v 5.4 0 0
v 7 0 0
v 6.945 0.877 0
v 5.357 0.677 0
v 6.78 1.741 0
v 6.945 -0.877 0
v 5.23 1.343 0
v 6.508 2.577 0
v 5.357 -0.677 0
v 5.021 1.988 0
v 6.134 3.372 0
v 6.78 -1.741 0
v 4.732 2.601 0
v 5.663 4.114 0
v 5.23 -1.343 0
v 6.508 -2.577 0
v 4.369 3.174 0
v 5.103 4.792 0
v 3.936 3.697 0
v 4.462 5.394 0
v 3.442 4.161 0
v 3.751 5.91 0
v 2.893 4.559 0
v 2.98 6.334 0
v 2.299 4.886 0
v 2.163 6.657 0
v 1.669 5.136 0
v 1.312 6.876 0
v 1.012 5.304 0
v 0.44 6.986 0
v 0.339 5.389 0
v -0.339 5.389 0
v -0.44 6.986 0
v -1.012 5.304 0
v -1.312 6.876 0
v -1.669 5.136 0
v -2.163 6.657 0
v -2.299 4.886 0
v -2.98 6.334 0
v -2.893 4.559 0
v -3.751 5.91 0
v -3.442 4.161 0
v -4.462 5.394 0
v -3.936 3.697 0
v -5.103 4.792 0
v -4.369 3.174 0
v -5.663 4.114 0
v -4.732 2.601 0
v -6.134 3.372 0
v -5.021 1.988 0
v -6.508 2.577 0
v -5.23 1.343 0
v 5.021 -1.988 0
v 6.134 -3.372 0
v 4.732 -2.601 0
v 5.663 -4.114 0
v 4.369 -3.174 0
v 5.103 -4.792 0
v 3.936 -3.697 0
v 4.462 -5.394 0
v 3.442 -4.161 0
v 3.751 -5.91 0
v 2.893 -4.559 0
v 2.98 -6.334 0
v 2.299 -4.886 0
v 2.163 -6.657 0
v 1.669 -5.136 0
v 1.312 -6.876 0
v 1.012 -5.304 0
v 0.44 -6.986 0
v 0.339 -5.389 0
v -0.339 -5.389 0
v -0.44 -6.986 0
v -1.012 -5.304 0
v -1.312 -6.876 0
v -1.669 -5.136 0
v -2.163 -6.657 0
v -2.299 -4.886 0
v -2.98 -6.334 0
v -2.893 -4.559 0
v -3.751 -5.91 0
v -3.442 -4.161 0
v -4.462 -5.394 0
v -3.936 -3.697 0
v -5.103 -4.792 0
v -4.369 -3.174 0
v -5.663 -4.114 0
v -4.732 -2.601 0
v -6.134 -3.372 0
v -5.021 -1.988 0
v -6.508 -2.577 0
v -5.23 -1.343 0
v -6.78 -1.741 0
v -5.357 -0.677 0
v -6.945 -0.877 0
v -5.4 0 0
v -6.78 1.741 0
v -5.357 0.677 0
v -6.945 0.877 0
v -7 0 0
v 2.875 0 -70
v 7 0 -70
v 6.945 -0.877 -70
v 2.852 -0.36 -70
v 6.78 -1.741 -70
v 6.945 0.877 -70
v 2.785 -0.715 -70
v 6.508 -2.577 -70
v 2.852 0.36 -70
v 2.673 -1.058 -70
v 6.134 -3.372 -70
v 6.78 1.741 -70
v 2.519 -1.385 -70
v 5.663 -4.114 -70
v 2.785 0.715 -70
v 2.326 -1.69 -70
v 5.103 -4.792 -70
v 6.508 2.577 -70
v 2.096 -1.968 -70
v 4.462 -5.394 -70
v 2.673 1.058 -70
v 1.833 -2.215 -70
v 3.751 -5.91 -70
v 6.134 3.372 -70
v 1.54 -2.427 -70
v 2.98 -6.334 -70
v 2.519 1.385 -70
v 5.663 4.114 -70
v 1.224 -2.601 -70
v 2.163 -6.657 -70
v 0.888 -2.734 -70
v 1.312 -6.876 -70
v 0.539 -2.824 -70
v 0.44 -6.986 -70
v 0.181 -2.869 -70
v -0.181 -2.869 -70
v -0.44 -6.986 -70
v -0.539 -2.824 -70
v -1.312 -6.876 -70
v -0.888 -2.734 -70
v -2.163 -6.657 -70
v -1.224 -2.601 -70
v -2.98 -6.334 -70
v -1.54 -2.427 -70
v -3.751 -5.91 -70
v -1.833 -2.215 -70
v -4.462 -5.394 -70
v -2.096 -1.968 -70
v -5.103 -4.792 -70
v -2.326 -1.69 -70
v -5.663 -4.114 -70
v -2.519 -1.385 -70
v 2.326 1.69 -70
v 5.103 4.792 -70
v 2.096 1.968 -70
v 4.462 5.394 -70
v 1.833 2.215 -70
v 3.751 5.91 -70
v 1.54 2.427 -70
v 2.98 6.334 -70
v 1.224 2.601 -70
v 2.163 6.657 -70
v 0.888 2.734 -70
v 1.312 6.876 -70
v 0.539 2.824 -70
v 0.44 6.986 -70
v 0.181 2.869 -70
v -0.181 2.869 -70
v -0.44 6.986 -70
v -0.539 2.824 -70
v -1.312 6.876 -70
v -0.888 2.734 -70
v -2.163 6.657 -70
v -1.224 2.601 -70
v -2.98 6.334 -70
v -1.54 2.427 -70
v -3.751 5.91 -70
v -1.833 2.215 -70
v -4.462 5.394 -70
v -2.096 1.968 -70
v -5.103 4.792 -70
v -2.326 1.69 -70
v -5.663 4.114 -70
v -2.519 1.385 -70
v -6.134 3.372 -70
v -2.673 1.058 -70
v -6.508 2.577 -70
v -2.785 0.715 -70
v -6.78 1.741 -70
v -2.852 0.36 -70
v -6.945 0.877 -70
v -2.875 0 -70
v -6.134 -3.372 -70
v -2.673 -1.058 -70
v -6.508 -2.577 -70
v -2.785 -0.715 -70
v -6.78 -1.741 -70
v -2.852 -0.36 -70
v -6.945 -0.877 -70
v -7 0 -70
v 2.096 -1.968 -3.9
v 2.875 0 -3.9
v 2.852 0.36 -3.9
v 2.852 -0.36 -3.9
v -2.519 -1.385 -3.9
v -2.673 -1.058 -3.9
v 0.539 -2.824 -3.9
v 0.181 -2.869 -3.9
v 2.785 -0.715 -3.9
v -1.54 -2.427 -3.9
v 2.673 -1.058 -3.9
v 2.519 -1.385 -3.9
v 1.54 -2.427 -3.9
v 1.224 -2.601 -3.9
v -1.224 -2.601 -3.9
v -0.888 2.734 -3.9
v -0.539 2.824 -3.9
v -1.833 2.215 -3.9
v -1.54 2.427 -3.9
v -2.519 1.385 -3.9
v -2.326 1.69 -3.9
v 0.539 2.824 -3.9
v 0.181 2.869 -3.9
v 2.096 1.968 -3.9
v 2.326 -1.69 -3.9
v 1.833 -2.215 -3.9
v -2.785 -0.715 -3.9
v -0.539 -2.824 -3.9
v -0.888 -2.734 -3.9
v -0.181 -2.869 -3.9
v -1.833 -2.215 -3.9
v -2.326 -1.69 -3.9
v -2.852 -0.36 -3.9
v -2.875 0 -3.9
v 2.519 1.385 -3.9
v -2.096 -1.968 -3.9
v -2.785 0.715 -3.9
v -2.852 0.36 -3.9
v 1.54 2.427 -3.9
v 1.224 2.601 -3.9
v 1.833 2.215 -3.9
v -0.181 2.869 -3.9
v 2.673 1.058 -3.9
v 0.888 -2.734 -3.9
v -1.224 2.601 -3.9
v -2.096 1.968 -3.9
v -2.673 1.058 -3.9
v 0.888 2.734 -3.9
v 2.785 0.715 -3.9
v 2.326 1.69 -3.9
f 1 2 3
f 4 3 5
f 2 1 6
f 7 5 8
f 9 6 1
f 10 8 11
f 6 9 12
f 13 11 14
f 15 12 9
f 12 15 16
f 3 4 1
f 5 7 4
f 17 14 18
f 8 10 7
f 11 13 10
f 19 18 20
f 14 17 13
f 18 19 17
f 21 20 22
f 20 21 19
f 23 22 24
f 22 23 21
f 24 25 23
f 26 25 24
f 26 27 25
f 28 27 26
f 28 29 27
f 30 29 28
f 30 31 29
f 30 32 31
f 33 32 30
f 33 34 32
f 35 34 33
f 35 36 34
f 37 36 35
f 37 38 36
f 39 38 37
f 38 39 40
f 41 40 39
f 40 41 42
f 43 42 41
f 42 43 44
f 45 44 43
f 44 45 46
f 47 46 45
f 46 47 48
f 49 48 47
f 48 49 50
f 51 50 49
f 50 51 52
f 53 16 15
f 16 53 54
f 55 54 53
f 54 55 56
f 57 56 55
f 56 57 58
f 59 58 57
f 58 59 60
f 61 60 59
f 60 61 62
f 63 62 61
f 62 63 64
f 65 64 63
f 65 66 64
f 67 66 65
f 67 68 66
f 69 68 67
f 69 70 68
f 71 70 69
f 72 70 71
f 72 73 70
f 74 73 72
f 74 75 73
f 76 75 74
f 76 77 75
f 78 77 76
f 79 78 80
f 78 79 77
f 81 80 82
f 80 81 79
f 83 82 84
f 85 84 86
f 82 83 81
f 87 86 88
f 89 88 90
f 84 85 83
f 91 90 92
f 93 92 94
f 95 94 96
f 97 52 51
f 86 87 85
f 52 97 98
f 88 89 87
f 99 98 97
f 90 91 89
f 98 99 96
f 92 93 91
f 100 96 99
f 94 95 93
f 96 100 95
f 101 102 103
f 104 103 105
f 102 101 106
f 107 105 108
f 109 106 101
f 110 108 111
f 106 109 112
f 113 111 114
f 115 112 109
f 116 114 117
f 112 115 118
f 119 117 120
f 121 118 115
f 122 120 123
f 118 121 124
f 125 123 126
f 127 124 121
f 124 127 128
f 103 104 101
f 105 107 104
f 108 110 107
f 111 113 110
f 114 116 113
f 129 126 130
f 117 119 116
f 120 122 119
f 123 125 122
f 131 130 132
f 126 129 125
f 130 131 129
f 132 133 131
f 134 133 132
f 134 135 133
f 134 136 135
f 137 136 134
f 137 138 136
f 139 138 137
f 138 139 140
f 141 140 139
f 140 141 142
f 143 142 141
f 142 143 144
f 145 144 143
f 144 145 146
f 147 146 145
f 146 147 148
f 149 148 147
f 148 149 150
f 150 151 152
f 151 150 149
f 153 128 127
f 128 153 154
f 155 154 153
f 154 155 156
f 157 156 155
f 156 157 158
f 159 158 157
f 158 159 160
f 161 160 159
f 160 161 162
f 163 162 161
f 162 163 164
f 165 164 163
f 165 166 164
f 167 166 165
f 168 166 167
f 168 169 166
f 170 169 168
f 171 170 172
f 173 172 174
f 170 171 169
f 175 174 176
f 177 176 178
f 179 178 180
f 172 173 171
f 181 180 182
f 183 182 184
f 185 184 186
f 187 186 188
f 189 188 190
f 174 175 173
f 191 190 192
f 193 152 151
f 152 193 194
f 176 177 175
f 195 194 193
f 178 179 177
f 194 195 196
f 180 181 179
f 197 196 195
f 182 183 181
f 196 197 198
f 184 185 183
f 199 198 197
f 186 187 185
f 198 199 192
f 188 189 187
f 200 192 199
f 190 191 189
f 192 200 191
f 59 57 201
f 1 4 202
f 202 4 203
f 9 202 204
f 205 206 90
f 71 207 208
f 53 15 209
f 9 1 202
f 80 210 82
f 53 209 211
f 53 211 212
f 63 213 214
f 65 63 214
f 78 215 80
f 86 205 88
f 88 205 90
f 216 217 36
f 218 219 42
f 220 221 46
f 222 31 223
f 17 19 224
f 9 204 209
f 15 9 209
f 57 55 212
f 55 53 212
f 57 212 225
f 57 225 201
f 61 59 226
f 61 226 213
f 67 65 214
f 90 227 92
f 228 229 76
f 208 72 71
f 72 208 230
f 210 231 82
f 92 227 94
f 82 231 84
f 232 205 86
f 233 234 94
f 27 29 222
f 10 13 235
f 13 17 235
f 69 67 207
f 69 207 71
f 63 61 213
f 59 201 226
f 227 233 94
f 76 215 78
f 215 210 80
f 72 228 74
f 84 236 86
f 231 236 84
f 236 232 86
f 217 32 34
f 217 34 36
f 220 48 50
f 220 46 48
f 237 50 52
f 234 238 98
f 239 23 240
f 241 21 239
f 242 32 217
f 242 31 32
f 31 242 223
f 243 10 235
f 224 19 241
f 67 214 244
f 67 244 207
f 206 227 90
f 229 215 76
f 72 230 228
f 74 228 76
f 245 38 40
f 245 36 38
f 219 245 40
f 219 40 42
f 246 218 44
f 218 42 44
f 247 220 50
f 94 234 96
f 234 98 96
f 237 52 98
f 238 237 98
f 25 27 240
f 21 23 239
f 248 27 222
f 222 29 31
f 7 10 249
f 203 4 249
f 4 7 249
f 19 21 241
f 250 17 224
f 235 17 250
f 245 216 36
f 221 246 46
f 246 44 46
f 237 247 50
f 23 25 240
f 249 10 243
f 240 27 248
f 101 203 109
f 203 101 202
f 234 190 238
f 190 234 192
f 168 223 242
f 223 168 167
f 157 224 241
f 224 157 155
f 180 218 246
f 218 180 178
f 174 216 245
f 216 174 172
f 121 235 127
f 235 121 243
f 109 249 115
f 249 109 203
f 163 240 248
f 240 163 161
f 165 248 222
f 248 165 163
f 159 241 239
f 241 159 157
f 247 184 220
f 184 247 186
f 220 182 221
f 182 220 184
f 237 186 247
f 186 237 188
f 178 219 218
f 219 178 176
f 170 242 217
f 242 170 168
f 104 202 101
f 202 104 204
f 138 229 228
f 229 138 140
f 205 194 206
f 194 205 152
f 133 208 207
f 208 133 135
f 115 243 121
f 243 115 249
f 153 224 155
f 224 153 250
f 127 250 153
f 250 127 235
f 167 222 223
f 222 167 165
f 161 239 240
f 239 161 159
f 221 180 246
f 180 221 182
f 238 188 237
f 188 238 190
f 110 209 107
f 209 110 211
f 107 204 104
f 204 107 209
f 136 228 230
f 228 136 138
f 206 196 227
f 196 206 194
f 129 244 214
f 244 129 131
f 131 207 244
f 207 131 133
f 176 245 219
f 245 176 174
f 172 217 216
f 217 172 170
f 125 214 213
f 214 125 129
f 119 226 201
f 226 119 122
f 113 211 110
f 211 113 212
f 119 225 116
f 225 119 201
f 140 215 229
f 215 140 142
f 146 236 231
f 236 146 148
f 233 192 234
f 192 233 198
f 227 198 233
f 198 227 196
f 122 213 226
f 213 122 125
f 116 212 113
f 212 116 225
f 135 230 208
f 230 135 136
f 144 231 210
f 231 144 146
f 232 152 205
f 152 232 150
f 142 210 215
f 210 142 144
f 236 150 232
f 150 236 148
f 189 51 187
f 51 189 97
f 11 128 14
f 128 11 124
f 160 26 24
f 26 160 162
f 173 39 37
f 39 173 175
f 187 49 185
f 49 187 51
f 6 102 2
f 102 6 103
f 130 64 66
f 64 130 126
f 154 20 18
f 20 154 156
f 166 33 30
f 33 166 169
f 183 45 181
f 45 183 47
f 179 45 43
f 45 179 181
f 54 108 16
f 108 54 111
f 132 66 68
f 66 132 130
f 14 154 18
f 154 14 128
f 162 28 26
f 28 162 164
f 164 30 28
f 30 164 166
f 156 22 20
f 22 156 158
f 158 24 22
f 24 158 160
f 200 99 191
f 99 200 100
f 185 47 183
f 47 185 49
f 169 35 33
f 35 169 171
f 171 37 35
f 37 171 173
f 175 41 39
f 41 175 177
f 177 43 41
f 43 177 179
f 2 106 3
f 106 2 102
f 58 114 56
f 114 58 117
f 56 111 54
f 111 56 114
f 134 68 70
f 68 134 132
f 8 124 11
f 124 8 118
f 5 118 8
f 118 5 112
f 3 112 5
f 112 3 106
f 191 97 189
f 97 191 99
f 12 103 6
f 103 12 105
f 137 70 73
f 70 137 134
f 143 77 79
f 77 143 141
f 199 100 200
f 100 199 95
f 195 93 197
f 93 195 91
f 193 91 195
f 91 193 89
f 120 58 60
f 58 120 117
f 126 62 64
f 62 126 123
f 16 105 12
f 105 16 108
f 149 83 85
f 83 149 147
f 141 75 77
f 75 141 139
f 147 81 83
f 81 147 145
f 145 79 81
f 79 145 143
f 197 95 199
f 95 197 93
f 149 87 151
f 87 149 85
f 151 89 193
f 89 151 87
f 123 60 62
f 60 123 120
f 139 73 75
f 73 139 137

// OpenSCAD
$fn = 50;


difference() {
	union() {
		translate(v = [0, 0, -70.0000000000]) {
			cylinder(h = 70, r = 7.0000000000);
		}
		cylinder(h = 0, r = 13.0000000000);
	}
	union() {
		translate(v = [0, 0, 0]) {
			rotate(a = [0, 0, 0]) {
				difference() {
					union() {
						#translate(v = [0, 0, -70.0000000000]) {
							cylinder(h = 70, r = 2.6000000000);
						}
						#translate(v = [0, 0, -3.9000000000]) {
							cylinder(h = 3.9000000000, r = 7.0000000000, r1 = 2.8750000000, r2 = 5.4000000000);
						}
						#translate(v = [0, 0, -70.0000000000]) {
							cylinder(h = 70, r = 2.8750000000);
						}
						#translate(v = [0, 0, -70.0000000000]) {
							cylinder(h = 70, r = 2.6000000000);
						}
					}
					union();
				}
			}
		}
	}
}
